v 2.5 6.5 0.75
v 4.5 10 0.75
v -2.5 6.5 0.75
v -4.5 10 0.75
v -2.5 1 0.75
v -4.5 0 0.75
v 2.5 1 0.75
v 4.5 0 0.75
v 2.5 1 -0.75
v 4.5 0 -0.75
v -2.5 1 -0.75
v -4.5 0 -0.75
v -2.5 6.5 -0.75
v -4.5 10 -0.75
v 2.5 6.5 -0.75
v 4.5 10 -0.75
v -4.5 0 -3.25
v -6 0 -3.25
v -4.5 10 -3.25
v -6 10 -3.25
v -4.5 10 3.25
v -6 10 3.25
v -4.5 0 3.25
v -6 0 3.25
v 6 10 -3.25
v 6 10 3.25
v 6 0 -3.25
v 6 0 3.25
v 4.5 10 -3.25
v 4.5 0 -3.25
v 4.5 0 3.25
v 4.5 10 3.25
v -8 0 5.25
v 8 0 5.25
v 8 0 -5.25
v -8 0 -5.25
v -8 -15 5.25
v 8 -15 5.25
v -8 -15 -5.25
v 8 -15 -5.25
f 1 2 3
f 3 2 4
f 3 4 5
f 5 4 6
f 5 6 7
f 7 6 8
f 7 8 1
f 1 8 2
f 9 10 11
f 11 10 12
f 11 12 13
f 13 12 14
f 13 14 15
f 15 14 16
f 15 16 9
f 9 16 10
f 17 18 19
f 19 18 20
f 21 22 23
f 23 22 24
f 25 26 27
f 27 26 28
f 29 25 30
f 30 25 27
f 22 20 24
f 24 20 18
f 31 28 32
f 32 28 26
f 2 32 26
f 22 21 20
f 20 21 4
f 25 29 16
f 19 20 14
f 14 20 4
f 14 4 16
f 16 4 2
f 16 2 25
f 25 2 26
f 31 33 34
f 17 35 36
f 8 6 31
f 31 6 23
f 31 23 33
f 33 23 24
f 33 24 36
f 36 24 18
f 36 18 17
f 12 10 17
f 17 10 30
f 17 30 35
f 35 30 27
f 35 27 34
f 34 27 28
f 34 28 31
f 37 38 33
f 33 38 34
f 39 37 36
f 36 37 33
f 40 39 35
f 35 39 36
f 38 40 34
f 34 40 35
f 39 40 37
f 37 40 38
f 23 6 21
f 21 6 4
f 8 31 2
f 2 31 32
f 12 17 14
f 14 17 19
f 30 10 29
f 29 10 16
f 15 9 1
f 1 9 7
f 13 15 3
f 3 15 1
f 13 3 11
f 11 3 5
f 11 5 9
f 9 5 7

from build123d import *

# Parameters (mm, degrees)
SKETCH1_W               = 12
SKETCH1_H               = 6.5
BOSS_EXTRUDE1_DEPTH     = 10
SKETCH2_W               = 16
SKETCH2_H               = 10.5
BOSS_EXTRUDE2_DEPTH     = 15
SKETCH3_W               = 9
SKETCH3_H               = 2.5
CUT_EXTRUDE1_DEPTH      = 10
CUT_EXTRUDE2_DEPTH      = 19.027756377
CUT_EXTRUDE2_DEPTH_BACK = 19.027756377
SKETCH4_W               = 5
SKETCH4_H               = 5.5


with BuildPart() as part:
    # Sketch1 → Boss-Extrude1 (new body)
    with BuildSketch(Plane(origin=(0, 0, 0), x_dir=(1, 0, 0), z_dir=(0, 1, 0))):
        Rectangle(SKETCH1_W, SKETCH1_H)
    extrude(amount=BOSS_EXTRUDE1_DEPTH)

    # Sketch2 → Boss-Extrude2 (add)
    with BuildSketch(Plane(origin=(0, 0, 0), x_dir=(1, 0, 0), z_dir=(0, 1, 0))):
        Rectangle(SKETCH2_W, SKETCH2_H)
    extrude(amount=-BOSS_EXTRUDE2_DEPTH)

    # Sketch3 → Cut-Extrude1 (cut)
    with BuildSketch(Plane(origin=(0, 10, 0), x_dir=(1, 0, 0), z_dir=(0, 1, 0))):
        with Locations((0, 2)):
            Rectangle(SKETCH3_W, SKETCH3_H)
        with Locations((0, -2)):
            Rectangle(SKETCH3_W, SKETCH3_H)
    extrude(amount=-CUT_EXTRUDE1_DEPTH, mode=Mode.SUBTRACT)

    # Sketch4 → Cut-Extrude2 (cut, two sides: drawn at the far end of the back side and taken through both)
    with BuildSketch(Plane(origin=(0, 0, -0.75), x_dir=(-1, 0, 0), z_dir=(0, 0, -1)).offset(-CUT_EXTRUDE2_DEPTH_BACK)):
        with Locations((0, 3.75)):
            Rectangle(SKETCH4_W, SKETCH4_H)
    extrude(amount=CUT_EXTRUDE2_DEPTH + CUT_EXTRUDE2_DEPTH_BACK, mode=Mode.SUBTRACT)


solid = part.part
